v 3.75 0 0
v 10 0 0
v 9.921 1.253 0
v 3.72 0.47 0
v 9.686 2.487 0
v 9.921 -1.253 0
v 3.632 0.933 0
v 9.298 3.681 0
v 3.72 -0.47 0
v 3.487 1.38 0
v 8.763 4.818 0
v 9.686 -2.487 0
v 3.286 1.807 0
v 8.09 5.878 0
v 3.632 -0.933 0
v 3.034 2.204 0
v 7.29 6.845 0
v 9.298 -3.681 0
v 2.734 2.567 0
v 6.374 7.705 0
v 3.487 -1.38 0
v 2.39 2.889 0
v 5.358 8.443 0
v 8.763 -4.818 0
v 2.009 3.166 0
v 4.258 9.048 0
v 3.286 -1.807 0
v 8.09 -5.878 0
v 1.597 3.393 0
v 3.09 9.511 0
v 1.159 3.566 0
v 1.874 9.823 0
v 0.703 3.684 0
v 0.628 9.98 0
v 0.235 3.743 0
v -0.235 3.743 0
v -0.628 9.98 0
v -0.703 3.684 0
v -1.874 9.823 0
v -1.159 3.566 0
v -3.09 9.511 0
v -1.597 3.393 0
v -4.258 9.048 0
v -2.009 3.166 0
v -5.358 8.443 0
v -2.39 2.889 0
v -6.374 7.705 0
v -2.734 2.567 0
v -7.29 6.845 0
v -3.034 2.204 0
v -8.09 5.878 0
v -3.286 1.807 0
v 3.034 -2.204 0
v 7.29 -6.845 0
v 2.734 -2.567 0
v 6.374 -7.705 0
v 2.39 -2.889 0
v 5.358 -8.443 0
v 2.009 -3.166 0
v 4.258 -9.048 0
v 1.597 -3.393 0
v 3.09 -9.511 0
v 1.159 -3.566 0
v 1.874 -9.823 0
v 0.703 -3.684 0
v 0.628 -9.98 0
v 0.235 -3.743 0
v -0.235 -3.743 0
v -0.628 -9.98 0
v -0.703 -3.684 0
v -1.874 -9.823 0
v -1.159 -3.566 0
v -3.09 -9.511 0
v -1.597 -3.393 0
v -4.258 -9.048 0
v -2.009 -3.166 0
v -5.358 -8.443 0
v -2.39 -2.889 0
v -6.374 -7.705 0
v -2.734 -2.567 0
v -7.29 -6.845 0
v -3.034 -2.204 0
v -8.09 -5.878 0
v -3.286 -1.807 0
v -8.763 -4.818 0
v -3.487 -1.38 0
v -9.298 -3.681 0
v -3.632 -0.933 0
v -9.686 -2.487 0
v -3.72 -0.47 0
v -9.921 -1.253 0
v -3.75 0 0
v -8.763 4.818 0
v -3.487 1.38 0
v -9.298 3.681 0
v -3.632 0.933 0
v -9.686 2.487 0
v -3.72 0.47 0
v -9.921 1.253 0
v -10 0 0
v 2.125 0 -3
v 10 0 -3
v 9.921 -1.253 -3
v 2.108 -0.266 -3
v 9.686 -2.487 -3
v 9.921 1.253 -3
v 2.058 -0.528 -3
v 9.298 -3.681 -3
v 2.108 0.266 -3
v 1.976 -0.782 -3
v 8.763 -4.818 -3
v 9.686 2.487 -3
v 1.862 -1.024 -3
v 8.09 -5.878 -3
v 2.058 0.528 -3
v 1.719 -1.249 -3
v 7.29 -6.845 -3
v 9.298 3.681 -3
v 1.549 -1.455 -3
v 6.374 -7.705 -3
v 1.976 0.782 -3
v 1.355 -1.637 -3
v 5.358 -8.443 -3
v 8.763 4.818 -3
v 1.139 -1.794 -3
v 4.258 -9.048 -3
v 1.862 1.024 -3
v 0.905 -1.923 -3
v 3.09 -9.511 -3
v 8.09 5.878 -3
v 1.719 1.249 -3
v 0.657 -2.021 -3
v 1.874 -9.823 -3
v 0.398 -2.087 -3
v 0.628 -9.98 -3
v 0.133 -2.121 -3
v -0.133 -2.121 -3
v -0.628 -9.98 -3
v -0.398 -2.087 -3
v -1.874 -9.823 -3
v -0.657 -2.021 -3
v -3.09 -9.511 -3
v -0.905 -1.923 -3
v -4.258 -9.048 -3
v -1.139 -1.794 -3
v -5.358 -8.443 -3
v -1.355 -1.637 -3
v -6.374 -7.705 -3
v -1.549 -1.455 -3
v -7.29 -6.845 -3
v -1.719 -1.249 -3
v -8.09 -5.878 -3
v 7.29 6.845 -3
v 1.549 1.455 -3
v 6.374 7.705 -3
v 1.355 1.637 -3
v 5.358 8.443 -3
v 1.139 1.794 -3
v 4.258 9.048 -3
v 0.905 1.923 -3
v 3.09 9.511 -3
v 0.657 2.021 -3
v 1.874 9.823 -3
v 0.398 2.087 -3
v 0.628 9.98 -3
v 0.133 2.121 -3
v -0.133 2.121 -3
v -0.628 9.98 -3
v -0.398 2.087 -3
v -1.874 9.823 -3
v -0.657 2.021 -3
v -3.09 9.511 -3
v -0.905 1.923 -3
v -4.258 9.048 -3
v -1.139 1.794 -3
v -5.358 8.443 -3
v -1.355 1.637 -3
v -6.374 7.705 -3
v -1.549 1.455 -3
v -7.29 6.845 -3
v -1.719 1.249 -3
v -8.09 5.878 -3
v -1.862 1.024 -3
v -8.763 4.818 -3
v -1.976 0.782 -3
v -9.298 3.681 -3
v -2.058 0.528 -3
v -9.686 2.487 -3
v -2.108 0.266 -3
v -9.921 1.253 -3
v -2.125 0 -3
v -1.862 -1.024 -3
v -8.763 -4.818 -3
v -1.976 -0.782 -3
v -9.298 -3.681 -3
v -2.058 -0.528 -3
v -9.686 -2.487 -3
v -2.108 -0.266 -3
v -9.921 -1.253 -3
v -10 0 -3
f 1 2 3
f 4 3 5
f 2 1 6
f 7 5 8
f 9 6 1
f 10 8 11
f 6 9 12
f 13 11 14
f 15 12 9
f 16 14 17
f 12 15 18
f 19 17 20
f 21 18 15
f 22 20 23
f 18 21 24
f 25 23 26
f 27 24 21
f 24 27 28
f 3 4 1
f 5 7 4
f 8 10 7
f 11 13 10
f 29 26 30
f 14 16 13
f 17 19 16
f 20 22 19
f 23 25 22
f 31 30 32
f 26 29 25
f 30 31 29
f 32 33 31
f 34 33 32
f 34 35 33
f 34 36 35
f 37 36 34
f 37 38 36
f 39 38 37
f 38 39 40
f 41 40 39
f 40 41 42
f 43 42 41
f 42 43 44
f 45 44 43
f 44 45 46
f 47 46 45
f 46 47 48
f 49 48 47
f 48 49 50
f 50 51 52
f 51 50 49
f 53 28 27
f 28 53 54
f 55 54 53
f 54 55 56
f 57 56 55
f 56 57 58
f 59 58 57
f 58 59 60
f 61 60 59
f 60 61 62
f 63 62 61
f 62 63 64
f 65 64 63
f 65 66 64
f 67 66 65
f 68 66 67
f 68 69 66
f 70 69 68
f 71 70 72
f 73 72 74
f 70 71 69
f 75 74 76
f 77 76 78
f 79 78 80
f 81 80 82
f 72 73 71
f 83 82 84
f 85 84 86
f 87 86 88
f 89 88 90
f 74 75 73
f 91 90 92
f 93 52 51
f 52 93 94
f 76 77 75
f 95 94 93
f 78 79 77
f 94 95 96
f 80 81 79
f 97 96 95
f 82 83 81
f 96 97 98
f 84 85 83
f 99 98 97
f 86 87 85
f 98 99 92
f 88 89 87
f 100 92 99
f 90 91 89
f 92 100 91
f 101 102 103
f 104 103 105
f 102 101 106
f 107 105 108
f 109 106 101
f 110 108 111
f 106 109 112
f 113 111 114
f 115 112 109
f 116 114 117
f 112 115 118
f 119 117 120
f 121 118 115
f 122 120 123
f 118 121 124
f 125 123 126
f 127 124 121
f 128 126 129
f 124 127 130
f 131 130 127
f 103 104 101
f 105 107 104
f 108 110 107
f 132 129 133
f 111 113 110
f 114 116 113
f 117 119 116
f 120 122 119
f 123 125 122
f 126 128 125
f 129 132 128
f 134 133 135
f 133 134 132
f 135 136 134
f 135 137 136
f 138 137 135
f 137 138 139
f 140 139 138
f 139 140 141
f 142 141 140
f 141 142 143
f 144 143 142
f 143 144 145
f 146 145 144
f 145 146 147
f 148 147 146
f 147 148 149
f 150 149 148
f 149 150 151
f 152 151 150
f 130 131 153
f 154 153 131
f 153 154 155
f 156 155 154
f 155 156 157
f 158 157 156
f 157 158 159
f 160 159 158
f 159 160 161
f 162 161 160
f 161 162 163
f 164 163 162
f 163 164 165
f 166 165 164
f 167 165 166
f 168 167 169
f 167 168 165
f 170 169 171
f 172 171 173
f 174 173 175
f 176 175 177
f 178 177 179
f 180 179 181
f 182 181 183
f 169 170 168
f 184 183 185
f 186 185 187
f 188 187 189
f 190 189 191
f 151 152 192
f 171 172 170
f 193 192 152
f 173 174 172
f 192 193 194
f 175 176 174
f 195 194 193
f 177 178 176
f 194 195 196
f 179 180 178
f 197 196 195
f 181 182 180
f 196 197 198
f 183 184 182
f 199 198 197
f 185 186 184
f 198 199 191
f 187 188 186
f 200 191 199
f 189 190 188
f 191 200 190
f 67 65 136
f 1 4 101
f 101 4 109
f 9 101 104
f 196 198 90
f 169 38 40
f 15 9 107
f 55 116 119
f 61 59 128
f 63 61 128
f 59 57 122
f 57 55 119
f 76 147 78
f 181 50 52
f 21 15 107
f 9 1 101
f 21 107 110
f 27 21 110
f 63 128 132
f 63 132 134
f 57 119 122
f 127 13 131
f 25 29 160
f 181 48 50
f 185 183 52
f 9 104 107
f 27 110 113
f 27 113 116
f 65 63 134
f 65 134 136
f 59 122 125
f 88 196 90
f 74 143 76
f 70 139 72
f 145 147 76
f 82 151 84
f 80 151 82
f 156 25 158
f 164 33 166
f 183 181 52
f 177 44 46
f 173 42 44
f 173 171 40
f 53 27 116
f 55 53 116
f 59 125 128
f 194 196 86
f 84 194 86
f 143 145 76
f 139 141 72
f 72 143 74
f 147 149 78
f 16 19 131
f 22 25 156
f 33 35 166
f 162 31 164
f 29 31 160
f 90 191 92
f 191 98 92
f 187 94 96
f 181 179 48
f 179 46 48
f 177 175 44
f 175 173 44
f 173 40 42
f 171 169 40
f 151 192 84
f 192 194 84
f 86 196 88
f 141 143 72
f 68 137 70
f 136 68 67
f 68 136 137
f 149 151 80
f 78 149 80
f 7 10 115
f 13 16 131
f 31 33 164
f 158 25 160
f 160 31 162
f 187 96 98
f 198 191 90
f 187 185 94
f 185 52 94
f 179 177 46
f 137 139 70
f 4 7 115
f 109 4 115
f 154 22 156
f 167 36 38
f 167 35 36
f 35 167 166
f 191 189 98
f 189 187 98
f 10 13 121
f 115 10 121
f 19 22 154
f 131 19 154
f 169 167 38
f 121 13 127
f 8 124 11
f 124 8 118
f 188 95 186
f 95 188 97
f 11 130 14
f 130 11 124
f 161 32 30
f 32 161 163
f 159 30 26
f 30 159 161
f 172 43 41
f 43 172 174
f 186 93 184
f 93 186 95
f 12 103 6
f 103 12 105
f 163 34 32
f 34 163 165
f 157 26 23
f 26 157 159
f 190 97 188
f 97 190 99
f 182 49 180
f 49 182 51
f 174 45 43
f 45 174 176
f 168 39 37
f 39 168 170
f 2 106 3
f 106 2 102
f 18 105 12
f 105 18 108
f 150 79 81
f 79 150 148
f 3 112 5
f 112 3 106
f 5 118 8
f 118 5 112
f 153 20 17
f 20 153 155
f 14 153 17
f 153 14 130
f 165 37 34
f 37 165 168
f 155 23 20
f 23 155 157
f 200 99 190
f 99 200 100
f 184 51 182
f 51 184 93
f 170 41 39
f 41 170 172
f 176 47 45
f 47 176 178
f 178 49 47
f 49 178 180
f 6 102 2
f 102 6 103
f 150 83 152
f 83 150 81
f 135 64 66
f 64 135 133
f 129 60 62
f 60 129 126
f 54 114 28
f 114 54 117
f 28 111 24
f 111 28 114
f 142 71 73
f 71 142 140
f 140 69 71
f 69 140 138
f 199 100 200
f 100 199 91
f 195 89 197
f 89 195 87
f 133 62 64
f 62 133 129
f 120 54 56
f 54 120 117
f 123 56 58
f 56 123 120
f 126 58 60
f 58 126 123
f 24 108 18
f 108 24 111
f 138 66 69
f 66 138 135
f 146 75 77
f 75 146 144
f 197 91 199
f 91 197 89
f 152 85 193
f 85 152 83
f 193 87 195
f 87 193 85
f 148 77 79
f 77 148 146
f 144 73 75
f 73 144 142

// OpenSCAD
$fn = 50;


difference() {
	union() {
		translate(v = [0, 0, -3.0000000000]) {
			cylinder(h = 3, r = 10.0000000000);
		}
		cylinder(h = 0, r = 16.0000000000);
	}
	union() {
		translate(v = [0, 0, 0]) {
			rotate(a = [0, 0, 0]) {
				difference() {
					union() {
						#translate(v = [0, 0, -3.0000000000]) {
							cylinder(h = 3, r = 2.0000000000);
						}
						#translate(v = [0, 0, -3]) {
							cylinder(h = 3, r1 = 2.1250000000, r2 = 3.7500000000);
						}
						#translate(v = [0, 0, -3.0000000000]) {
							cylinder(h = 3, r = 2.1250000000);
						}
						#translate(v = [0, 0, -3.0000000000]) {
							cylinder(h = 3, r = 2.0000000000);
						}
					}
					union();
				}
			}
		}
	}
}
